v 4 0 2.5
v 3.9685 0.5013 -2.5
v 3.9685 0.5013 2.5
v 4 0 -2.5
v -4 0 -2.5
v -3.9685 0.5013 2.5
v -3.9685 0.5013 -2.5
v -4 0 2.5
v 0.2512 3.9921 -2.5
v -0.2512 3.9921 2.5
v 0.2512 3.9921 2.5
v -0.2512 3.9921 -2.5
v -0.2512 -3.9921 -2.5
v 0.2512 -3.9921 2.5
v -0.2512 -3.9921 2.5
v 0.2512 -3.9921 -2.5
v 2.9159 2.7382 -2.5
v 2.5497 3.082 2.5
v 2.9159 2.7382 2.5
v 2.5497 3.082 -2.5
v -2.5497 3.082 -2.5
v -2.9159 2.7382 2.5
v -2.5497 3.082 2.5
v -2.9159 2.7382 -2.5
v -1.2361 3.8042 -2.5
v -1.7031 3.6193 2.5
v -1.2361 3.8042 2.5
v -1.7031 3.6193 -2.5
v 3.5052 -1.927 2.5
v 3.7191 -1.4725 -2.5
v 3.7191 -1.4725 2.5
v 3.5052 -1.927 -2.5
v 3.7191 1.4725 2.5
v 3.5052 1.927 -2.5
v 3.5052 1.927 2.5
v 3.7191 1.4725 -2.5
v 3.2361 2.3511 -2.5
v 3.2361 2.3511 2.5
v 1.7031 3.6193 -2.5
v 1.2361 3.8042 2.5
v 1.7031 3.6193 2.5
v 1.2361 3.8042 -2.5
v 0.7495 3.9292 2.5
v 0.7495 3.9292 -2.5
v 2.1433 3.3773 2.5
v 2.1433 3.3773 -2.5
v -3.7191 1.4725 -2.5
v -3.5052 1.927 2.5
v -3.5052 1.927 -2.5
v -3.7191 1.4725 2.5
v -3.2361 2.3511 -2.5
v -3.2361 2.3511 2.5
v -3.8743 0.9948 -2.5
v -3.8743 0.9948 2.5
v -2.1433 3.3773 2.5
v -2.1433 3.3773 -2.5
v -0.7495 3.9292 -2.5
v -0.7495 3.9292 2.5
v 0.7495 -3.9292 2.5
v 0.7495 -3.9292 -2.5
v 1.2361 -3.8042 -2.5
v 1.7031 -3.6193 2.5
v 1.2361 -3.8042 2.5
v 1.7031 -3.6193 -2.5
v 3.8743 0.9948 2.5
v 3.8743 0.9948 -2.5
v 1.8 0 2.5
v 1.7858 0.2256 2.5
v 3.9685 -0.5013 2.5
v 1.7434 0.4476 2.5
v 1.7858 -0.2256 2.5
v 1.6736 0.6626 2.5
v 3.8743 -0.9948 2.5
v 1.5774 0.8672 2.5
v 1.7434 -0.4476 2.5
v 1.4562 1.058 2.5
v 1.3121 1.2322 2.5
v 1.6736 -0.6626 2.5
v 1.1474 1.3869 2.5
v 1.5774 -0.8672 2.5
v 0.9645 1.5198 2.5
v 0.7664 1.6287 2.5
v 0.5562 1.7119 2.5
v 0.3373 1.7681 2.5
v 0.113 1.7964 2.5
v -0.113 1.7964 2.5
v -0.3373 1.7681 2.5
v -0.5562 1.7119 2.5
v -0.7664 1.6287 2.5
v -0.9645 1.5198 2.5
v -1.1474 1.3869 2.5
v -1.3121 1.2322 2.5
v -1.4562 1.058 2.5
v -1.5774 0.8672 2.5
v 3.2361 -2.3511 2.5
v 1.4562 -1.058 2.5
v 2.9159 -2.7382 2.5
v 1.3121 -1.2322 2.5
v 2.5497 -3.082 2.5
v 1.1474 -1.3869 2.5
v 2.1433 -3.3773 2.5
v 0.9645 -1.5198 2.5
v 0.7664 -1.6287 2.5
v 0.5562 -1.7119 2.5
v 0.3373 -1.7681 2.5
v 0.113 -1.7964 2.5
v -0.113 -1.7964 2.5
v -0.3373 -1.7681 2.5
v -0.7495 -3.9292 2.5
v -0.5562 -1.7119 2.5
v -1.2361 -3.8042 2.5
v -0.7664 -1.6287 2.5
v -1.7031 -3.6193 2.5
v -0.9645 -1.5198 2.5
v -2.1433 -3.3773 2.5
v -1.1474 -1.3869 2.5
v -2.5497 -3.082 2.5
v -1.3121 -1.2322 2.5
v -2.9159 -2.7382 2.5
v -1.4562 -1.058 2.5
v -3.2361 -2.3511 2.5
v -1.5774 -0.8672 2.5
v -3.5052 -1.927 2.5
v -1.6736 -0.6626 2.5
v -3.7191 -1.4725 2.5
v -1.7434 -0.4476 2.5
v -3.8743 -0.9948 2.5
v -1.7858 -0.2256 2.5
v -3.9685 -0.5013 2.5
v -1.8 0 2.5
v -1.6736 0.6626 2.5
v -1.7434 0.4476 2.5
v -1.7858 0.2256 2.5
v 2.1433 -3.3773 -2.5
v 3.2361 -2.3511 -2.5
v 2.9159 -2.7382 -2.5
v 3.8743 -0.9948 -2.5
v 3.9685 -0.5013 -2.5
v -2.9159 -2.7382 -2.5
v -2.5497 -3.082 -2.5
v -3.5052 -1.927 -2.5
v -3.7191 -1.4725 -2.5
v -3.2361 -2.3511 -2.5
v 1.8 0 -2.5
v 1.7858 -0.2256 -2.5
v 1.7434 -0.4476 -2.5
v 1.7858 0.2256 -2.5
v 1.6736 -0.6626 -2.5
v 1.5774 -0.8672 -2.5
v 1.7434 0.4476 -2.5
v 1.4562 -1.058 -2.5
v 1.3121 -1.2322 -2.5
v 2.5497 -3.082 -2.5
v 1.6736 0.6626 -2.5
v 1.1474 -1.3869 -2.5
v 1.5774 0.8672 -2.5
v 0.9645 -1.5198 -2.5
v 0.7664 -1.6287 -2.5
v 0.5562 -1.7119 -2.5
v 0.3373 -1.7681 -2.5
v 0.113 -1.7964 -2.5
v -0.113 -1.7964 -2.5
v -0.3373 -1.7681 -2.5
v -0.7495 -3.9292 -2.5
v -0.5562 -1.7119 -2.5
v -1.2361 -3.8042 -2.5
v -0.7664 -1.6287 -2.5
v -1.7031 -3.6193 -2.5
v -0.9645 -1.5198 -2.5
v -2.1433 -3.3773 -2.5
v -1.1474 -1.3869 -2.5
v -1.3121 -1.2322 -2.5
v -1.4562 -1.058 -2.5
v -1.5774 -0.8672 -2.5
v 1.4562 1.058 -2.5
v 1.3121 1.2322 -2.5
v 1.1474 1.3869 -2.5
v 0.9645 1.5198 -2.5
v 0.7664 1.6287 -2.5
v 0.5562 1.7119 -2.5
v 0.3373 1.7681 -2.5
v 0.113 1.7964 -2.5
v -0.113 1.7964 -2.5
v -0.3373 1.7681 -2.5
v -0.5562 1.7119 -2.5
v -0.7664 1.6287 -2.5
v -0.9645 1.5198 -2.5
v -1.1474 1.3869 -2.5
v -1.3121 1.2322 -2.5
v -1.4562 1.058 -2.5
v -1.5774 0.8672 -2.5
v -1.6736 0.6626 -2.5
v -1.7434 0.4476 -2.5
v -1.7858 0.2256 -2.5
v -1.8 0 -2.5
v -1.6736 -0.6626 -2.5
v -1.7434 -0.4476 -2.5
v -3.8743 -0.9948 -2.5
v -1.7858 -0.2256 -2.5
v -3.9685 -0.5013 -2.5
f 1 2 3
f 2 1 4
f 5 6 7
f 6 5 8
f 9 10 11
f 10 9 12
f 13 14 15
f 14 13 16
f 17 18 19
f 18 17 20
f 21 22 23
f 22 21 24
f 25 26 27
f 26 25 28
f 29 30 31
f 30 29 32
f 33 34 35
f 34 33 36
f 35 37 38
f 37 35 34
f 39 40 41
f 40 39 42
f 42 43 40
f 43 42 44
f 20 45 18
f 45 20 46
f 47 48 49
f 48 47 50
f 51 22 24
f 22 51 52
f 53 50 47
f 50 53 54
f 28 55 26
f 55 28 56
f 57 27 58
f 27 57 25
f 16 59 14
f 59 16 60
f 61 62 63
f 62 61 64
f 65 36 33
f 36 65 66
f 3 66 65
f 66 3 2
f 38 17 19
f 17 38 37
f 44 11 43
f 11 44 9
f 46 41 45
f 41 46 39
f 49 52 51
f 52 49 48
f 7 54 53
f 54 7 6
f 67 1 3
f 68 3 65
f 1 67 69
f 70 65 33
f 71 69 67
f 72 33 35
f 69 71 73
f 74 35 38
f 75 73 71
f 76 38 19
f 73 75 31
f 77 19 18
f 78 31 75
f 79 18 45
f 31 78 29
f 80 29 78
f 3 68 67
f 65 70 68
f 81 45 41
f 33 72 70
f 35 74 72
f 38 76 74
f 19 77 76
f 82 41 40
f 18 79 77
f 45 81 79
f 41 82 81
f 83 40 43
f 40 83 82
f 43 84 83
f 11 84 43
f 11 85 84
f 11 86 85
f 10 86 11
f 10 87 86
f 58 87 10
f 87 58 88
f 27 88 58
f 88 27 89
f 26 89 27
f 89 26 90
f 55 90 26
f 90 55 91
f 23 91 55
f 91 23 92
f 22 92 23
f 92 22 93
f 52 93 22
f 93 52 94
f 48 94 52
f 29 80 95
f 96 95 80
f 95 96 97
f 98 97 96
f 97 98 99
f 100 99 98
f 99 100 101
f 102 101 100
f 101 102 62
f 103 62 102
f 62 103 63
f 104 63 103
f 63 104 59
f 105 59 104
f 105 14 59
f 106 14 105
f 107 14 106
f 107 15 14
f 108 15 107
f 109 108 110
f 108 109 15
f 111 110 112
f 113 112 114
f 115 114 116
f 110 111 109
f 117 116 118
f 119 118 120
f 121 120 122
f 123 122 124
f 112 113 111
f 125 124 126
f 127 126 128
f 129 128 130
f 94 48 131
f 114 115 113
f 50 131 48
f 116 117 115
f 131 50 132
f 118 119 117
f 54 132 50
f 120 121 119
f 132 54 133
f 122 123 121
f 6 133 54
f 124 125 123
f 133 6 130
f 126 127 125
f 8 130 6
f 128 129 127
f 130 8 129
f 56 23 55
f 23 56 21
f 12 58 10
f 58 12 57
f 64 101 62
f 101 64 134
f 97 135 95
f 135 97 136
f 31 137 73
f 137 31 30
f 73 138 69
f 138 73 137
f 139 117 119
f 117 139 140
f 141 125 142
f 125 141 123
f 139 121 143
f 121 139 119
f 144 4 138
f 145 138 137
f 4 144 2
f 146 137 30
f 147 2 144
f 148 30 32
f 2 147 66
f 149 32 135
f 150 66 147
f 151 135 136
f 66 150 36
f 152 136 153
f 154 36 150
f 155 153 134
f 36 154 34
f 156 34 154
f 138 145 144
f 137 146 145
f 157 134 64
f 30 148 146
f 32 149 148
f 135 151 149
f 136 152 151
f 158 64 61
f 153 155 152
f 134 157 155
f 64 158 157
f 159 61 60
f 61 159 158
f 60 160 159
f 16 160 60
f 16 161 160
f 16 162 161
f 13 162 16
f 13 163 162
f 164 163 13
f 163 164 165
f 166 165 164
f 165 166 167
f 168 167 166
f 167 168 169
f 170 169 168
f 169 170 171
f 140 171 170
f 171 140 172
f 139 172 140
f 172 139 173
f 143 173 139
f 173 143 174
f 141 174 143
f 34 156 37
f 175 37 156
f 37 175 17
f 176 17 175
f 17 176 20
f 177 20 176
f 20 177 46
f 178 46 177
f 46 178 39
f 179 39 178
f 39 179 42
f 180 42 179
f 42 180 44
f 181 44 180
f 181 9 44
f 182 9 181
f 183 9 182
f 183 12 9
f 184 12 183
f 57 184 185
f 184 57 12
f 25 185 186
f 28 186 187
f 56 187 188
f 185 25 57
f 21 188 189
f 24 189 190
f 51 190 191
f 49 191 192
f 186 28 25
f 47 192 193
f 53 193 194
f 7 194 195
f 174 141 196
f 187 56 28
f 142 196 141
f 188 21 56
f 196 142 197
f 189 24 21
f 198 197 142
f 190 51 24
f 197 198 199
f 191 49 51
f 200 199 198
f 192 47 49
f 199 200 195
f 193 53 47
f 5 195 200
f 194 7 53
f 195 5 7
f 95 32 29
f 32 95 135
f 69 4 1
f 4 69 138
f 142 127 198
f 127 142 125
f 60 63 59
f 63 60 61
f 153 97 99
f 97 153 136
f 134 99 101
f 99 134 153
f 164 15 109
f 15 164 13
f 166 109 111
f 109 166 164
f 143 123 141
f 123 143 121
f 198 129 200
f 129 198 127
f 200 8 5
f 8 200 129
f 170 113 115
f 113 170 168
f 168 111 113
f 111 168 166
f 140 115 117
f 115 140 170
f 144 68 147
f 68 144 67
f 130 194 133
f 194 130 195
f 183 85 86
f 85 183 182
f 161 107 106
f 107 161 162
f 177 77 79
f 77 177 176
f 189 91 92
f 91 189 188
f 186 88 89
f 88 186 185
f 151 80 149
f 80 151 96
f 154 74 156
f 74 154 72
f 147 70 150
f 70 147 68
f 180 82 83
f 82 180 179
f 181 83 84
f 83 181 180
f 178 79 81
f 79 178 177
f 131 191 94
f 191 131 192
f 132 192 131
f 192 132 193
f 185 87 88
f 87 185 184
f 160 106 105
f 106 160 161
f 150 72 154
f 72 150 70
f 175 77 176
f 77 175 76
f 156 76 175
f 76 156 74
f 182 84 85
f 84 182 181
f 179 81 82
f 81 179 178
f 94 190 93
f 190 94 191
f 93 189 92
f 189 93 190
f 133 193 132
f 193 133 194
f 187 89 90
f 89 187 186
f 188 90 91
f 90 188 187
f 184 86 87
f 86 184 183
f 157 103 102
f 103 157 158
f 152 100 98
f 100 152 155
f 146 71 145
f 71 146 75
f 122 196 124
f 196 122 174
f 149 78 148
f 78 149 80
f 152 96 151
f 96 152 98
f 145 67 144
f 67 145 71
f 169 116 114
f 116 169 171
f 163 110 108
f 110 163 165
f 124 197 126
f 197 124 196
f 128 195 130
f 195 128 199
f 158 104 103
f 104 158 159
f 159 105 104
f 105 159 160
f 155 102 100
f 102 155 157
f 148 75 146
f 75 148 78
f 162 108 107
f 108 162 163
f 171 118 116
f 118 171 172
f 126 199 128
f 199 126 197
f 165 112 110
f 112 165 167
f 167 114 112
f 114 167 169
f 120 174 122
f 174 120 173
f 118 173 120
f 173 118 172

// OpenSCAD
$fn = 50;


difference() {
	union() {
		translate(v = [0, 0, -2.5000000000]) {
			cylinder(h = 5, r = 4.0000000000);
		}
	}
	union() {
		translate(v = [0, 0, -100.0000000000]) {
			cylinder(h = 200, r = 1.8000000000);
		}
	}
}
